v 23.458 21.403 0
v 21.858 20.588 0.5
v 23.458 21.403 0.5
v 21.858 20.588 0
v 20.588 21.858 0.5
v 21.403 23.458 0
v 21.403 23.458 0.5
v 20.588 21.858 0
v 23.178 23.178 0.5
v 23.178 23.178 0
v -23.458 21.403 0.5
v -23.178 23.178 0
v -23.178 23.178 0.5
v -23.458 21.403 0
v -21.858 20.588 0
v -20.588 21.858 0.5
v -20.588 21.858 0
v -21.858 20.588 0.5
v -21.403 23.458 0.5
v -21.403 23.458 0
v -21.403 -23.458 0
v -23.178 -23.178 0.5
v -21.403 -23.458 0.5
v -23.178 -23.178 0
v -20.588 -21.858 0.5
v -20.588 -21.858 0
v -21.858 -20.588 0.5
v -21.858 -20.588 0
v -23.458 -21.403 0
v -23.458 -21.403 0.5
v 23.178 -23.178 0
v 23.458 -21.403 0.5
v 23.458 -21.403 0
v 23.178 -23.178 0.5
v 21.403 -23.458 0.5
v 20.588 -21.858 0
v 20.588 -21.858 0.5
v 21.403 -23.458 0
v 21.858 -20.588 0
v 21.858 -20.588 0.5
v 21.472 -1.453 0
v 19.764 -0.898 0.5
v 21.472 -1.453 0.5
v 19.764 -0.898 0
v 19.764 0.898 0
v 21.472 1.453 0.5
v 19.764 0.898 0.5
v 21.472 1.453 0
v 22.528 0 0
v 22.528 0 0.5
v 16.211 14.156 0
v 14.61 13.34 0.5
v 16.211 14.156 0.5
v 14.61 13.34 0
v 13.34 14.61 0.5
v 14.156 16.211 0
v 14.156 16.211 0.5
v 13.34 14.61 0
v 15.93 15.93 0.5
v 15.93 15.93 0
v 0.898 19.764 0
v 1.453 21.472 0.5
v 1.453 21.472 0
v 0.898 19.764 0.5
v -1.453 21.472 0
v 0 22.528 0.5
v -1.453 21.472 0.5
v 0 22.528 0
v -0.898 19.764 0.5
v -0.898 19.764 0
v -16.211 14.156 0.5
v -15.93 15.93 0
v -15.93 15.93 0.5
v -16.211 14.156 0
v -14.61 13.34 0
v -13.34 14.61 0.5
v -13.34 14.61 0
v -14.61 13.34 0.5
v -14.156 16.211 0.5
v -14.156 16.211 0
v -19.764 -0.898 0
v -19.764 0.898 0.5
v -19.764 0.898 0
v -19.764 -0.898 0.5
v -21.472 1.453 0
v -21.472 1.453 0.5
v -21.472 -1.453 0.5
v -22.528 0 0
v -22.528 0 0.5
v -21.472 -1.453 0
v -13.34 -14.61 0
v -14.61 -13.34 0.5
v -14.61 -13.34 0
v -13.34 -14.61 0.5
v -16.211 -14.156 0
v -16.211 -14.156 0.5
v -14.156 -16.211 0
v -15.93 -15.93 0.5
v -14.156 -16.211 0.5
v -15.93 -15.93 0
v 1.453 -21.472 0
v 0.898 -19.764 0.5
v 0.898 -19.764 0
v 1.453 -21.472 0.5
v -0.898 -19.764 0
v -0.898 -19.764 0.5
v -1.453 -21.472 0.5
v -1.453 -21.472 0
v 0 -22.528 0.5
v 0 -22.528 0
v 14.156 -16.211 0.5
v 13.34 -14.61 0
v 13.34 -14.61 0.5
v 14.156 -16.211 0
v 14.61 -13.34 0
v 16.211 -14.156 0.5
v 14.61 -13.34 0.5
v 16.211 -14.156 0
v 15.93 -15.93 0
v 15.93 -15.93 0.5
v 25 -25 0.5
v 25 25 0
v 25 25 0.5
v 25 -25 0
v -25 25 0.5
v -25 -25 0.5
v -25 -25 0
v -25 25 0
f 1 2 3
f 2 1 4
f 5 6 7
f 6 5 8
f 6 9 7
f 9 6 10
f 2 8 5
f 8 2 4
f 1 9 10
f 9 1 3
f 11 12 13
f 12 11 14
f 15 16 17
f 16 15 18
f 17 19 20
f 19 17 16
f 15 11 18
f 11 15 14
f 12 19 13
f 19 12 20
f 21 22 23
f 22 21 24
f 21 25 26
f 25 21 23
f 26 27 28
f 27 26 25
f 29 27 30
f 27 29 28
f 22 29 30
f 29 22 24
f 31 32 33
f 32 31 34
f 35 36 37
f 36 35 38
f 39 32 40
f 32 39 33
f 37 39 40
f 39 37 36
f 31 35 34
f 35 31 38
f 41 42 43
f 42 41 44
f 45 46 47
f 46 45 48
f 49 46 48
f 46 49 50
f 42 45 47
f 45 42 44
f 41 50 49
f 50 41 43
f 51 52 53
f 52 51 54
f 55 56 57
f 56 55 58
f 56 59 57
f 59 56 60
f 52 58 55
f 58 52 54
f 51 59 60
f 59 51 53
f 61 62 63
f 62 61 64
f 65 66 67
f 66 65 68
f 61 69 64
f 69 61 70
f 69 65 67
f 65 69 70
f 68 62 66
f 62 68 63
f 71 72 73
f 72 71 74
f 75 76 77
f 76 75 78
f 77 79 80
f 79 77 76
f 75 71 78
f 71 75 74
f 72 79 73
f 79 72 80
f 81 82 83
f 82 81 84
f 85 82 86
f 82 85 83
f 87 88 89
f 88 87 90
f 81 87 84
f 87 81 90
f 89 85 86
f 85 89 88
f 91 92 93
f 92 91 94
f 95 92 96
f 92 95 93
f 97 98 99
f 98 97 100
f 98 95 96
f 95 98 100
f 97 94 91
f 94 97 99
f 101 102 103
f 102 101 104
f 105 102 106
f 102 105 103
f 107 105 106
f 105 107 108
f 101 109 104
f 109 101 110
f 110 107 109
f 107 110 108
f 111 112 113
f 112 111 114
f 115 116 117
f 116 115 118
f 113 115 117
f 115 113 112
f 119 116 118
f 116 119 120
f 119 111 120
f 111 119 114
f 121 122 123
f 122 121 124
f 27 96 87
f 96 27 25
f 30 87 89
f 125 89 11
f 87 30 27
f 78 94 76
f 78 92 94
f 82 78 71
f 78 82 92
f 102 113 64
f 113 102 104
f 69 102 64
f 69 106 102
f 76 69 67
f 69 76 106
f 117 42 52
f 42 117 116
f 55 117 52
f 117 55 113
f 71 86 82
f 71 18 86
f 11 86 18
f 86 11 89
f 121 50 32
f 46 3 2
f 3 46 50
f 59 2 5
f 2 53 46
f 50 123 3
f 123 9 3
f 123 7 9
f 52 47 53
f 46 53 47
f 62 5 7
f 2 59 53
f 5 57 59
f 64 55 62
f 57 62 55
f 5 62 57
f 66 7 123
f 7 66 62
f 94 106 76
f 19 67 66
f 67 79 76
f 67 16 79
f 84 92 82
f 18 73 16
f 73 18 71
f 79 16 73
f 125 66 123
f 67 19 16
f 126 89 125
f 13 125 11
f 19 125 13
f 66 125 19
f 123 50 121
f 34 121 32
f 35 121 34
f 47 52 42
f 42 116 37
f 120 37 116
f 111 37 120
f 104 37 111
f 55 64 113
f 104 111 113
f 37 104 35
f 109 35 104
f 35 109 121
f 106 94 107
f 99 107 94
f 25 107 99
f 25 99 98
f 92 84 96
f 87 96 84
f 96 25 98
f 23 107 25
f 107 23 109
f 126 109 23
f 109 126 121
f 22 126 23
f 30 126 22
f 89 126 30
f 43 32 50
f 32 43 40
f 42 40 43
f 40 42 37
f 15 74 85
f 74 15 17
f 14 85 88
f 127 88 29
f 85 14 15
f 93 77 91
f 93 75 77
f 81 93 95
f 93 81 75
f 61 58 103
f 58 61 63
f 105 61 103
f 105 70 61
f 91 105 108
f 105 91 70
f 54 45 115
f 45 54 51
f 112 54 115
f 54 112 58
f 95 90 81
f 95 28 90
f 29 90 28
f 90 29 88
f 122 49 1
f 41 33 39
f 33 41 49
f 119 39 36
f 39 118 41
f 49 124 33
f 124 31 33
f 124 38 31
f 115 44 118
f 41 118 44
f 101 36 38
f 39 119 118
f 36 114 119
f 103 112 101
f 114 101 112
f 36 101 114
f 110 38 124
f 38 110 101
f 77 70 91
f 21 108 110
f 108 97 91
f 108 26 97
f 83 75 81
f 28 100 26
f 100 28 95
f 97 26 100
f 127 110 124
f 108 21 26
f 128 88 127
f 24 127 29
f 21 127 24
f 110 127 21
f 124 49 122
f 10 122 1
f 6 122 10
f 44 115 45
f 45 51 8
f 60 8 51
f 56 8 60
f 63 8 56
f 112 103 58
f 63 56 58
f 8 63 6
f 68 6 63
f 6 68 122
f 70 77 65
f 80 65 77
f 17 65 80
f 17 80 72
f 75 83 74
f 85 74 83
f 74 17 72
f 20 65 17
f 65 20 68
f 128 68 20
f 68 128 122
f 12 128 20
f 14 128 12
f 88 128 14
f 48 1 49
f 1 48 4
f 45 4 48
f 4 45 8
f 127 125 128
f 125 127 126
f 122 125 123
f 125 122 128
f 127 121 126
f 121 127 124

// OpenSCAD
//----------------------------------------------------------------------
// PDB sized plate
//----------------------------------------------------------------------

Wid=50;
Rad1=31.25;         // radius to outer holes
Rad2=21;            // radius to inner holes

// PARAMETERS
// Ht -- how thick of a plate?
// DrillSz -- what size of hole?

Ht=2;               // fat plate
Ht=.5;              // skinny plate

DrillSz=(7/64*25.4/2)*1.3;       // 2.5mm grommet  (todo: need to measure))
DrillSz=(7/64*25.4/2)*1.3;       // normal, easy to fit 4-40
DrillSz=(7/64*25.4/2)*1.1;       // tight, for skinny plate only

//----------------------------------------------------------------------

module plate() {
    difference() {
        // plate
        translate([-Wid/2,-Wid/2,0])
            cube([Wid,Wid,Ht]);

        // edge holes
        for (i = [0:3]) {
            rotate(90*i+45) {
                translate([Rad1,0,-1])
                   cylinder(h=Ht+2,r=DrillSz);
            }
        }

        // inner holes
        for (i = [0:7]) {
            rotate(45*i) {
                translate([Rad2,0,-1])
                   cylinder(h=Ht+2,r=DrillSz);
            }
        }

    }
}

//----------------------------------------------------------------------
// main print logic.  we can print one or several
//----------------------------------------------------------------------

BedWid=285;       // Makerbot 2: width of printer bed (x coordinate)
BedDep=153;       // Makerbot 2: depth of printer bed (y coordinate)
Gap=5;            // spacing between multiple copies

module several(a,b) {
    translate([-BedWid/2,-BedDep/2,0]) {
        for (a0=[0:a-1]) {
            for (b0=[0:b-1]) {
                translate([a0*(Wid+Gap),b0*(Wid+Gap),0])
                    plate();
            }
        }
    }
}

plate();
//several(1,1);
